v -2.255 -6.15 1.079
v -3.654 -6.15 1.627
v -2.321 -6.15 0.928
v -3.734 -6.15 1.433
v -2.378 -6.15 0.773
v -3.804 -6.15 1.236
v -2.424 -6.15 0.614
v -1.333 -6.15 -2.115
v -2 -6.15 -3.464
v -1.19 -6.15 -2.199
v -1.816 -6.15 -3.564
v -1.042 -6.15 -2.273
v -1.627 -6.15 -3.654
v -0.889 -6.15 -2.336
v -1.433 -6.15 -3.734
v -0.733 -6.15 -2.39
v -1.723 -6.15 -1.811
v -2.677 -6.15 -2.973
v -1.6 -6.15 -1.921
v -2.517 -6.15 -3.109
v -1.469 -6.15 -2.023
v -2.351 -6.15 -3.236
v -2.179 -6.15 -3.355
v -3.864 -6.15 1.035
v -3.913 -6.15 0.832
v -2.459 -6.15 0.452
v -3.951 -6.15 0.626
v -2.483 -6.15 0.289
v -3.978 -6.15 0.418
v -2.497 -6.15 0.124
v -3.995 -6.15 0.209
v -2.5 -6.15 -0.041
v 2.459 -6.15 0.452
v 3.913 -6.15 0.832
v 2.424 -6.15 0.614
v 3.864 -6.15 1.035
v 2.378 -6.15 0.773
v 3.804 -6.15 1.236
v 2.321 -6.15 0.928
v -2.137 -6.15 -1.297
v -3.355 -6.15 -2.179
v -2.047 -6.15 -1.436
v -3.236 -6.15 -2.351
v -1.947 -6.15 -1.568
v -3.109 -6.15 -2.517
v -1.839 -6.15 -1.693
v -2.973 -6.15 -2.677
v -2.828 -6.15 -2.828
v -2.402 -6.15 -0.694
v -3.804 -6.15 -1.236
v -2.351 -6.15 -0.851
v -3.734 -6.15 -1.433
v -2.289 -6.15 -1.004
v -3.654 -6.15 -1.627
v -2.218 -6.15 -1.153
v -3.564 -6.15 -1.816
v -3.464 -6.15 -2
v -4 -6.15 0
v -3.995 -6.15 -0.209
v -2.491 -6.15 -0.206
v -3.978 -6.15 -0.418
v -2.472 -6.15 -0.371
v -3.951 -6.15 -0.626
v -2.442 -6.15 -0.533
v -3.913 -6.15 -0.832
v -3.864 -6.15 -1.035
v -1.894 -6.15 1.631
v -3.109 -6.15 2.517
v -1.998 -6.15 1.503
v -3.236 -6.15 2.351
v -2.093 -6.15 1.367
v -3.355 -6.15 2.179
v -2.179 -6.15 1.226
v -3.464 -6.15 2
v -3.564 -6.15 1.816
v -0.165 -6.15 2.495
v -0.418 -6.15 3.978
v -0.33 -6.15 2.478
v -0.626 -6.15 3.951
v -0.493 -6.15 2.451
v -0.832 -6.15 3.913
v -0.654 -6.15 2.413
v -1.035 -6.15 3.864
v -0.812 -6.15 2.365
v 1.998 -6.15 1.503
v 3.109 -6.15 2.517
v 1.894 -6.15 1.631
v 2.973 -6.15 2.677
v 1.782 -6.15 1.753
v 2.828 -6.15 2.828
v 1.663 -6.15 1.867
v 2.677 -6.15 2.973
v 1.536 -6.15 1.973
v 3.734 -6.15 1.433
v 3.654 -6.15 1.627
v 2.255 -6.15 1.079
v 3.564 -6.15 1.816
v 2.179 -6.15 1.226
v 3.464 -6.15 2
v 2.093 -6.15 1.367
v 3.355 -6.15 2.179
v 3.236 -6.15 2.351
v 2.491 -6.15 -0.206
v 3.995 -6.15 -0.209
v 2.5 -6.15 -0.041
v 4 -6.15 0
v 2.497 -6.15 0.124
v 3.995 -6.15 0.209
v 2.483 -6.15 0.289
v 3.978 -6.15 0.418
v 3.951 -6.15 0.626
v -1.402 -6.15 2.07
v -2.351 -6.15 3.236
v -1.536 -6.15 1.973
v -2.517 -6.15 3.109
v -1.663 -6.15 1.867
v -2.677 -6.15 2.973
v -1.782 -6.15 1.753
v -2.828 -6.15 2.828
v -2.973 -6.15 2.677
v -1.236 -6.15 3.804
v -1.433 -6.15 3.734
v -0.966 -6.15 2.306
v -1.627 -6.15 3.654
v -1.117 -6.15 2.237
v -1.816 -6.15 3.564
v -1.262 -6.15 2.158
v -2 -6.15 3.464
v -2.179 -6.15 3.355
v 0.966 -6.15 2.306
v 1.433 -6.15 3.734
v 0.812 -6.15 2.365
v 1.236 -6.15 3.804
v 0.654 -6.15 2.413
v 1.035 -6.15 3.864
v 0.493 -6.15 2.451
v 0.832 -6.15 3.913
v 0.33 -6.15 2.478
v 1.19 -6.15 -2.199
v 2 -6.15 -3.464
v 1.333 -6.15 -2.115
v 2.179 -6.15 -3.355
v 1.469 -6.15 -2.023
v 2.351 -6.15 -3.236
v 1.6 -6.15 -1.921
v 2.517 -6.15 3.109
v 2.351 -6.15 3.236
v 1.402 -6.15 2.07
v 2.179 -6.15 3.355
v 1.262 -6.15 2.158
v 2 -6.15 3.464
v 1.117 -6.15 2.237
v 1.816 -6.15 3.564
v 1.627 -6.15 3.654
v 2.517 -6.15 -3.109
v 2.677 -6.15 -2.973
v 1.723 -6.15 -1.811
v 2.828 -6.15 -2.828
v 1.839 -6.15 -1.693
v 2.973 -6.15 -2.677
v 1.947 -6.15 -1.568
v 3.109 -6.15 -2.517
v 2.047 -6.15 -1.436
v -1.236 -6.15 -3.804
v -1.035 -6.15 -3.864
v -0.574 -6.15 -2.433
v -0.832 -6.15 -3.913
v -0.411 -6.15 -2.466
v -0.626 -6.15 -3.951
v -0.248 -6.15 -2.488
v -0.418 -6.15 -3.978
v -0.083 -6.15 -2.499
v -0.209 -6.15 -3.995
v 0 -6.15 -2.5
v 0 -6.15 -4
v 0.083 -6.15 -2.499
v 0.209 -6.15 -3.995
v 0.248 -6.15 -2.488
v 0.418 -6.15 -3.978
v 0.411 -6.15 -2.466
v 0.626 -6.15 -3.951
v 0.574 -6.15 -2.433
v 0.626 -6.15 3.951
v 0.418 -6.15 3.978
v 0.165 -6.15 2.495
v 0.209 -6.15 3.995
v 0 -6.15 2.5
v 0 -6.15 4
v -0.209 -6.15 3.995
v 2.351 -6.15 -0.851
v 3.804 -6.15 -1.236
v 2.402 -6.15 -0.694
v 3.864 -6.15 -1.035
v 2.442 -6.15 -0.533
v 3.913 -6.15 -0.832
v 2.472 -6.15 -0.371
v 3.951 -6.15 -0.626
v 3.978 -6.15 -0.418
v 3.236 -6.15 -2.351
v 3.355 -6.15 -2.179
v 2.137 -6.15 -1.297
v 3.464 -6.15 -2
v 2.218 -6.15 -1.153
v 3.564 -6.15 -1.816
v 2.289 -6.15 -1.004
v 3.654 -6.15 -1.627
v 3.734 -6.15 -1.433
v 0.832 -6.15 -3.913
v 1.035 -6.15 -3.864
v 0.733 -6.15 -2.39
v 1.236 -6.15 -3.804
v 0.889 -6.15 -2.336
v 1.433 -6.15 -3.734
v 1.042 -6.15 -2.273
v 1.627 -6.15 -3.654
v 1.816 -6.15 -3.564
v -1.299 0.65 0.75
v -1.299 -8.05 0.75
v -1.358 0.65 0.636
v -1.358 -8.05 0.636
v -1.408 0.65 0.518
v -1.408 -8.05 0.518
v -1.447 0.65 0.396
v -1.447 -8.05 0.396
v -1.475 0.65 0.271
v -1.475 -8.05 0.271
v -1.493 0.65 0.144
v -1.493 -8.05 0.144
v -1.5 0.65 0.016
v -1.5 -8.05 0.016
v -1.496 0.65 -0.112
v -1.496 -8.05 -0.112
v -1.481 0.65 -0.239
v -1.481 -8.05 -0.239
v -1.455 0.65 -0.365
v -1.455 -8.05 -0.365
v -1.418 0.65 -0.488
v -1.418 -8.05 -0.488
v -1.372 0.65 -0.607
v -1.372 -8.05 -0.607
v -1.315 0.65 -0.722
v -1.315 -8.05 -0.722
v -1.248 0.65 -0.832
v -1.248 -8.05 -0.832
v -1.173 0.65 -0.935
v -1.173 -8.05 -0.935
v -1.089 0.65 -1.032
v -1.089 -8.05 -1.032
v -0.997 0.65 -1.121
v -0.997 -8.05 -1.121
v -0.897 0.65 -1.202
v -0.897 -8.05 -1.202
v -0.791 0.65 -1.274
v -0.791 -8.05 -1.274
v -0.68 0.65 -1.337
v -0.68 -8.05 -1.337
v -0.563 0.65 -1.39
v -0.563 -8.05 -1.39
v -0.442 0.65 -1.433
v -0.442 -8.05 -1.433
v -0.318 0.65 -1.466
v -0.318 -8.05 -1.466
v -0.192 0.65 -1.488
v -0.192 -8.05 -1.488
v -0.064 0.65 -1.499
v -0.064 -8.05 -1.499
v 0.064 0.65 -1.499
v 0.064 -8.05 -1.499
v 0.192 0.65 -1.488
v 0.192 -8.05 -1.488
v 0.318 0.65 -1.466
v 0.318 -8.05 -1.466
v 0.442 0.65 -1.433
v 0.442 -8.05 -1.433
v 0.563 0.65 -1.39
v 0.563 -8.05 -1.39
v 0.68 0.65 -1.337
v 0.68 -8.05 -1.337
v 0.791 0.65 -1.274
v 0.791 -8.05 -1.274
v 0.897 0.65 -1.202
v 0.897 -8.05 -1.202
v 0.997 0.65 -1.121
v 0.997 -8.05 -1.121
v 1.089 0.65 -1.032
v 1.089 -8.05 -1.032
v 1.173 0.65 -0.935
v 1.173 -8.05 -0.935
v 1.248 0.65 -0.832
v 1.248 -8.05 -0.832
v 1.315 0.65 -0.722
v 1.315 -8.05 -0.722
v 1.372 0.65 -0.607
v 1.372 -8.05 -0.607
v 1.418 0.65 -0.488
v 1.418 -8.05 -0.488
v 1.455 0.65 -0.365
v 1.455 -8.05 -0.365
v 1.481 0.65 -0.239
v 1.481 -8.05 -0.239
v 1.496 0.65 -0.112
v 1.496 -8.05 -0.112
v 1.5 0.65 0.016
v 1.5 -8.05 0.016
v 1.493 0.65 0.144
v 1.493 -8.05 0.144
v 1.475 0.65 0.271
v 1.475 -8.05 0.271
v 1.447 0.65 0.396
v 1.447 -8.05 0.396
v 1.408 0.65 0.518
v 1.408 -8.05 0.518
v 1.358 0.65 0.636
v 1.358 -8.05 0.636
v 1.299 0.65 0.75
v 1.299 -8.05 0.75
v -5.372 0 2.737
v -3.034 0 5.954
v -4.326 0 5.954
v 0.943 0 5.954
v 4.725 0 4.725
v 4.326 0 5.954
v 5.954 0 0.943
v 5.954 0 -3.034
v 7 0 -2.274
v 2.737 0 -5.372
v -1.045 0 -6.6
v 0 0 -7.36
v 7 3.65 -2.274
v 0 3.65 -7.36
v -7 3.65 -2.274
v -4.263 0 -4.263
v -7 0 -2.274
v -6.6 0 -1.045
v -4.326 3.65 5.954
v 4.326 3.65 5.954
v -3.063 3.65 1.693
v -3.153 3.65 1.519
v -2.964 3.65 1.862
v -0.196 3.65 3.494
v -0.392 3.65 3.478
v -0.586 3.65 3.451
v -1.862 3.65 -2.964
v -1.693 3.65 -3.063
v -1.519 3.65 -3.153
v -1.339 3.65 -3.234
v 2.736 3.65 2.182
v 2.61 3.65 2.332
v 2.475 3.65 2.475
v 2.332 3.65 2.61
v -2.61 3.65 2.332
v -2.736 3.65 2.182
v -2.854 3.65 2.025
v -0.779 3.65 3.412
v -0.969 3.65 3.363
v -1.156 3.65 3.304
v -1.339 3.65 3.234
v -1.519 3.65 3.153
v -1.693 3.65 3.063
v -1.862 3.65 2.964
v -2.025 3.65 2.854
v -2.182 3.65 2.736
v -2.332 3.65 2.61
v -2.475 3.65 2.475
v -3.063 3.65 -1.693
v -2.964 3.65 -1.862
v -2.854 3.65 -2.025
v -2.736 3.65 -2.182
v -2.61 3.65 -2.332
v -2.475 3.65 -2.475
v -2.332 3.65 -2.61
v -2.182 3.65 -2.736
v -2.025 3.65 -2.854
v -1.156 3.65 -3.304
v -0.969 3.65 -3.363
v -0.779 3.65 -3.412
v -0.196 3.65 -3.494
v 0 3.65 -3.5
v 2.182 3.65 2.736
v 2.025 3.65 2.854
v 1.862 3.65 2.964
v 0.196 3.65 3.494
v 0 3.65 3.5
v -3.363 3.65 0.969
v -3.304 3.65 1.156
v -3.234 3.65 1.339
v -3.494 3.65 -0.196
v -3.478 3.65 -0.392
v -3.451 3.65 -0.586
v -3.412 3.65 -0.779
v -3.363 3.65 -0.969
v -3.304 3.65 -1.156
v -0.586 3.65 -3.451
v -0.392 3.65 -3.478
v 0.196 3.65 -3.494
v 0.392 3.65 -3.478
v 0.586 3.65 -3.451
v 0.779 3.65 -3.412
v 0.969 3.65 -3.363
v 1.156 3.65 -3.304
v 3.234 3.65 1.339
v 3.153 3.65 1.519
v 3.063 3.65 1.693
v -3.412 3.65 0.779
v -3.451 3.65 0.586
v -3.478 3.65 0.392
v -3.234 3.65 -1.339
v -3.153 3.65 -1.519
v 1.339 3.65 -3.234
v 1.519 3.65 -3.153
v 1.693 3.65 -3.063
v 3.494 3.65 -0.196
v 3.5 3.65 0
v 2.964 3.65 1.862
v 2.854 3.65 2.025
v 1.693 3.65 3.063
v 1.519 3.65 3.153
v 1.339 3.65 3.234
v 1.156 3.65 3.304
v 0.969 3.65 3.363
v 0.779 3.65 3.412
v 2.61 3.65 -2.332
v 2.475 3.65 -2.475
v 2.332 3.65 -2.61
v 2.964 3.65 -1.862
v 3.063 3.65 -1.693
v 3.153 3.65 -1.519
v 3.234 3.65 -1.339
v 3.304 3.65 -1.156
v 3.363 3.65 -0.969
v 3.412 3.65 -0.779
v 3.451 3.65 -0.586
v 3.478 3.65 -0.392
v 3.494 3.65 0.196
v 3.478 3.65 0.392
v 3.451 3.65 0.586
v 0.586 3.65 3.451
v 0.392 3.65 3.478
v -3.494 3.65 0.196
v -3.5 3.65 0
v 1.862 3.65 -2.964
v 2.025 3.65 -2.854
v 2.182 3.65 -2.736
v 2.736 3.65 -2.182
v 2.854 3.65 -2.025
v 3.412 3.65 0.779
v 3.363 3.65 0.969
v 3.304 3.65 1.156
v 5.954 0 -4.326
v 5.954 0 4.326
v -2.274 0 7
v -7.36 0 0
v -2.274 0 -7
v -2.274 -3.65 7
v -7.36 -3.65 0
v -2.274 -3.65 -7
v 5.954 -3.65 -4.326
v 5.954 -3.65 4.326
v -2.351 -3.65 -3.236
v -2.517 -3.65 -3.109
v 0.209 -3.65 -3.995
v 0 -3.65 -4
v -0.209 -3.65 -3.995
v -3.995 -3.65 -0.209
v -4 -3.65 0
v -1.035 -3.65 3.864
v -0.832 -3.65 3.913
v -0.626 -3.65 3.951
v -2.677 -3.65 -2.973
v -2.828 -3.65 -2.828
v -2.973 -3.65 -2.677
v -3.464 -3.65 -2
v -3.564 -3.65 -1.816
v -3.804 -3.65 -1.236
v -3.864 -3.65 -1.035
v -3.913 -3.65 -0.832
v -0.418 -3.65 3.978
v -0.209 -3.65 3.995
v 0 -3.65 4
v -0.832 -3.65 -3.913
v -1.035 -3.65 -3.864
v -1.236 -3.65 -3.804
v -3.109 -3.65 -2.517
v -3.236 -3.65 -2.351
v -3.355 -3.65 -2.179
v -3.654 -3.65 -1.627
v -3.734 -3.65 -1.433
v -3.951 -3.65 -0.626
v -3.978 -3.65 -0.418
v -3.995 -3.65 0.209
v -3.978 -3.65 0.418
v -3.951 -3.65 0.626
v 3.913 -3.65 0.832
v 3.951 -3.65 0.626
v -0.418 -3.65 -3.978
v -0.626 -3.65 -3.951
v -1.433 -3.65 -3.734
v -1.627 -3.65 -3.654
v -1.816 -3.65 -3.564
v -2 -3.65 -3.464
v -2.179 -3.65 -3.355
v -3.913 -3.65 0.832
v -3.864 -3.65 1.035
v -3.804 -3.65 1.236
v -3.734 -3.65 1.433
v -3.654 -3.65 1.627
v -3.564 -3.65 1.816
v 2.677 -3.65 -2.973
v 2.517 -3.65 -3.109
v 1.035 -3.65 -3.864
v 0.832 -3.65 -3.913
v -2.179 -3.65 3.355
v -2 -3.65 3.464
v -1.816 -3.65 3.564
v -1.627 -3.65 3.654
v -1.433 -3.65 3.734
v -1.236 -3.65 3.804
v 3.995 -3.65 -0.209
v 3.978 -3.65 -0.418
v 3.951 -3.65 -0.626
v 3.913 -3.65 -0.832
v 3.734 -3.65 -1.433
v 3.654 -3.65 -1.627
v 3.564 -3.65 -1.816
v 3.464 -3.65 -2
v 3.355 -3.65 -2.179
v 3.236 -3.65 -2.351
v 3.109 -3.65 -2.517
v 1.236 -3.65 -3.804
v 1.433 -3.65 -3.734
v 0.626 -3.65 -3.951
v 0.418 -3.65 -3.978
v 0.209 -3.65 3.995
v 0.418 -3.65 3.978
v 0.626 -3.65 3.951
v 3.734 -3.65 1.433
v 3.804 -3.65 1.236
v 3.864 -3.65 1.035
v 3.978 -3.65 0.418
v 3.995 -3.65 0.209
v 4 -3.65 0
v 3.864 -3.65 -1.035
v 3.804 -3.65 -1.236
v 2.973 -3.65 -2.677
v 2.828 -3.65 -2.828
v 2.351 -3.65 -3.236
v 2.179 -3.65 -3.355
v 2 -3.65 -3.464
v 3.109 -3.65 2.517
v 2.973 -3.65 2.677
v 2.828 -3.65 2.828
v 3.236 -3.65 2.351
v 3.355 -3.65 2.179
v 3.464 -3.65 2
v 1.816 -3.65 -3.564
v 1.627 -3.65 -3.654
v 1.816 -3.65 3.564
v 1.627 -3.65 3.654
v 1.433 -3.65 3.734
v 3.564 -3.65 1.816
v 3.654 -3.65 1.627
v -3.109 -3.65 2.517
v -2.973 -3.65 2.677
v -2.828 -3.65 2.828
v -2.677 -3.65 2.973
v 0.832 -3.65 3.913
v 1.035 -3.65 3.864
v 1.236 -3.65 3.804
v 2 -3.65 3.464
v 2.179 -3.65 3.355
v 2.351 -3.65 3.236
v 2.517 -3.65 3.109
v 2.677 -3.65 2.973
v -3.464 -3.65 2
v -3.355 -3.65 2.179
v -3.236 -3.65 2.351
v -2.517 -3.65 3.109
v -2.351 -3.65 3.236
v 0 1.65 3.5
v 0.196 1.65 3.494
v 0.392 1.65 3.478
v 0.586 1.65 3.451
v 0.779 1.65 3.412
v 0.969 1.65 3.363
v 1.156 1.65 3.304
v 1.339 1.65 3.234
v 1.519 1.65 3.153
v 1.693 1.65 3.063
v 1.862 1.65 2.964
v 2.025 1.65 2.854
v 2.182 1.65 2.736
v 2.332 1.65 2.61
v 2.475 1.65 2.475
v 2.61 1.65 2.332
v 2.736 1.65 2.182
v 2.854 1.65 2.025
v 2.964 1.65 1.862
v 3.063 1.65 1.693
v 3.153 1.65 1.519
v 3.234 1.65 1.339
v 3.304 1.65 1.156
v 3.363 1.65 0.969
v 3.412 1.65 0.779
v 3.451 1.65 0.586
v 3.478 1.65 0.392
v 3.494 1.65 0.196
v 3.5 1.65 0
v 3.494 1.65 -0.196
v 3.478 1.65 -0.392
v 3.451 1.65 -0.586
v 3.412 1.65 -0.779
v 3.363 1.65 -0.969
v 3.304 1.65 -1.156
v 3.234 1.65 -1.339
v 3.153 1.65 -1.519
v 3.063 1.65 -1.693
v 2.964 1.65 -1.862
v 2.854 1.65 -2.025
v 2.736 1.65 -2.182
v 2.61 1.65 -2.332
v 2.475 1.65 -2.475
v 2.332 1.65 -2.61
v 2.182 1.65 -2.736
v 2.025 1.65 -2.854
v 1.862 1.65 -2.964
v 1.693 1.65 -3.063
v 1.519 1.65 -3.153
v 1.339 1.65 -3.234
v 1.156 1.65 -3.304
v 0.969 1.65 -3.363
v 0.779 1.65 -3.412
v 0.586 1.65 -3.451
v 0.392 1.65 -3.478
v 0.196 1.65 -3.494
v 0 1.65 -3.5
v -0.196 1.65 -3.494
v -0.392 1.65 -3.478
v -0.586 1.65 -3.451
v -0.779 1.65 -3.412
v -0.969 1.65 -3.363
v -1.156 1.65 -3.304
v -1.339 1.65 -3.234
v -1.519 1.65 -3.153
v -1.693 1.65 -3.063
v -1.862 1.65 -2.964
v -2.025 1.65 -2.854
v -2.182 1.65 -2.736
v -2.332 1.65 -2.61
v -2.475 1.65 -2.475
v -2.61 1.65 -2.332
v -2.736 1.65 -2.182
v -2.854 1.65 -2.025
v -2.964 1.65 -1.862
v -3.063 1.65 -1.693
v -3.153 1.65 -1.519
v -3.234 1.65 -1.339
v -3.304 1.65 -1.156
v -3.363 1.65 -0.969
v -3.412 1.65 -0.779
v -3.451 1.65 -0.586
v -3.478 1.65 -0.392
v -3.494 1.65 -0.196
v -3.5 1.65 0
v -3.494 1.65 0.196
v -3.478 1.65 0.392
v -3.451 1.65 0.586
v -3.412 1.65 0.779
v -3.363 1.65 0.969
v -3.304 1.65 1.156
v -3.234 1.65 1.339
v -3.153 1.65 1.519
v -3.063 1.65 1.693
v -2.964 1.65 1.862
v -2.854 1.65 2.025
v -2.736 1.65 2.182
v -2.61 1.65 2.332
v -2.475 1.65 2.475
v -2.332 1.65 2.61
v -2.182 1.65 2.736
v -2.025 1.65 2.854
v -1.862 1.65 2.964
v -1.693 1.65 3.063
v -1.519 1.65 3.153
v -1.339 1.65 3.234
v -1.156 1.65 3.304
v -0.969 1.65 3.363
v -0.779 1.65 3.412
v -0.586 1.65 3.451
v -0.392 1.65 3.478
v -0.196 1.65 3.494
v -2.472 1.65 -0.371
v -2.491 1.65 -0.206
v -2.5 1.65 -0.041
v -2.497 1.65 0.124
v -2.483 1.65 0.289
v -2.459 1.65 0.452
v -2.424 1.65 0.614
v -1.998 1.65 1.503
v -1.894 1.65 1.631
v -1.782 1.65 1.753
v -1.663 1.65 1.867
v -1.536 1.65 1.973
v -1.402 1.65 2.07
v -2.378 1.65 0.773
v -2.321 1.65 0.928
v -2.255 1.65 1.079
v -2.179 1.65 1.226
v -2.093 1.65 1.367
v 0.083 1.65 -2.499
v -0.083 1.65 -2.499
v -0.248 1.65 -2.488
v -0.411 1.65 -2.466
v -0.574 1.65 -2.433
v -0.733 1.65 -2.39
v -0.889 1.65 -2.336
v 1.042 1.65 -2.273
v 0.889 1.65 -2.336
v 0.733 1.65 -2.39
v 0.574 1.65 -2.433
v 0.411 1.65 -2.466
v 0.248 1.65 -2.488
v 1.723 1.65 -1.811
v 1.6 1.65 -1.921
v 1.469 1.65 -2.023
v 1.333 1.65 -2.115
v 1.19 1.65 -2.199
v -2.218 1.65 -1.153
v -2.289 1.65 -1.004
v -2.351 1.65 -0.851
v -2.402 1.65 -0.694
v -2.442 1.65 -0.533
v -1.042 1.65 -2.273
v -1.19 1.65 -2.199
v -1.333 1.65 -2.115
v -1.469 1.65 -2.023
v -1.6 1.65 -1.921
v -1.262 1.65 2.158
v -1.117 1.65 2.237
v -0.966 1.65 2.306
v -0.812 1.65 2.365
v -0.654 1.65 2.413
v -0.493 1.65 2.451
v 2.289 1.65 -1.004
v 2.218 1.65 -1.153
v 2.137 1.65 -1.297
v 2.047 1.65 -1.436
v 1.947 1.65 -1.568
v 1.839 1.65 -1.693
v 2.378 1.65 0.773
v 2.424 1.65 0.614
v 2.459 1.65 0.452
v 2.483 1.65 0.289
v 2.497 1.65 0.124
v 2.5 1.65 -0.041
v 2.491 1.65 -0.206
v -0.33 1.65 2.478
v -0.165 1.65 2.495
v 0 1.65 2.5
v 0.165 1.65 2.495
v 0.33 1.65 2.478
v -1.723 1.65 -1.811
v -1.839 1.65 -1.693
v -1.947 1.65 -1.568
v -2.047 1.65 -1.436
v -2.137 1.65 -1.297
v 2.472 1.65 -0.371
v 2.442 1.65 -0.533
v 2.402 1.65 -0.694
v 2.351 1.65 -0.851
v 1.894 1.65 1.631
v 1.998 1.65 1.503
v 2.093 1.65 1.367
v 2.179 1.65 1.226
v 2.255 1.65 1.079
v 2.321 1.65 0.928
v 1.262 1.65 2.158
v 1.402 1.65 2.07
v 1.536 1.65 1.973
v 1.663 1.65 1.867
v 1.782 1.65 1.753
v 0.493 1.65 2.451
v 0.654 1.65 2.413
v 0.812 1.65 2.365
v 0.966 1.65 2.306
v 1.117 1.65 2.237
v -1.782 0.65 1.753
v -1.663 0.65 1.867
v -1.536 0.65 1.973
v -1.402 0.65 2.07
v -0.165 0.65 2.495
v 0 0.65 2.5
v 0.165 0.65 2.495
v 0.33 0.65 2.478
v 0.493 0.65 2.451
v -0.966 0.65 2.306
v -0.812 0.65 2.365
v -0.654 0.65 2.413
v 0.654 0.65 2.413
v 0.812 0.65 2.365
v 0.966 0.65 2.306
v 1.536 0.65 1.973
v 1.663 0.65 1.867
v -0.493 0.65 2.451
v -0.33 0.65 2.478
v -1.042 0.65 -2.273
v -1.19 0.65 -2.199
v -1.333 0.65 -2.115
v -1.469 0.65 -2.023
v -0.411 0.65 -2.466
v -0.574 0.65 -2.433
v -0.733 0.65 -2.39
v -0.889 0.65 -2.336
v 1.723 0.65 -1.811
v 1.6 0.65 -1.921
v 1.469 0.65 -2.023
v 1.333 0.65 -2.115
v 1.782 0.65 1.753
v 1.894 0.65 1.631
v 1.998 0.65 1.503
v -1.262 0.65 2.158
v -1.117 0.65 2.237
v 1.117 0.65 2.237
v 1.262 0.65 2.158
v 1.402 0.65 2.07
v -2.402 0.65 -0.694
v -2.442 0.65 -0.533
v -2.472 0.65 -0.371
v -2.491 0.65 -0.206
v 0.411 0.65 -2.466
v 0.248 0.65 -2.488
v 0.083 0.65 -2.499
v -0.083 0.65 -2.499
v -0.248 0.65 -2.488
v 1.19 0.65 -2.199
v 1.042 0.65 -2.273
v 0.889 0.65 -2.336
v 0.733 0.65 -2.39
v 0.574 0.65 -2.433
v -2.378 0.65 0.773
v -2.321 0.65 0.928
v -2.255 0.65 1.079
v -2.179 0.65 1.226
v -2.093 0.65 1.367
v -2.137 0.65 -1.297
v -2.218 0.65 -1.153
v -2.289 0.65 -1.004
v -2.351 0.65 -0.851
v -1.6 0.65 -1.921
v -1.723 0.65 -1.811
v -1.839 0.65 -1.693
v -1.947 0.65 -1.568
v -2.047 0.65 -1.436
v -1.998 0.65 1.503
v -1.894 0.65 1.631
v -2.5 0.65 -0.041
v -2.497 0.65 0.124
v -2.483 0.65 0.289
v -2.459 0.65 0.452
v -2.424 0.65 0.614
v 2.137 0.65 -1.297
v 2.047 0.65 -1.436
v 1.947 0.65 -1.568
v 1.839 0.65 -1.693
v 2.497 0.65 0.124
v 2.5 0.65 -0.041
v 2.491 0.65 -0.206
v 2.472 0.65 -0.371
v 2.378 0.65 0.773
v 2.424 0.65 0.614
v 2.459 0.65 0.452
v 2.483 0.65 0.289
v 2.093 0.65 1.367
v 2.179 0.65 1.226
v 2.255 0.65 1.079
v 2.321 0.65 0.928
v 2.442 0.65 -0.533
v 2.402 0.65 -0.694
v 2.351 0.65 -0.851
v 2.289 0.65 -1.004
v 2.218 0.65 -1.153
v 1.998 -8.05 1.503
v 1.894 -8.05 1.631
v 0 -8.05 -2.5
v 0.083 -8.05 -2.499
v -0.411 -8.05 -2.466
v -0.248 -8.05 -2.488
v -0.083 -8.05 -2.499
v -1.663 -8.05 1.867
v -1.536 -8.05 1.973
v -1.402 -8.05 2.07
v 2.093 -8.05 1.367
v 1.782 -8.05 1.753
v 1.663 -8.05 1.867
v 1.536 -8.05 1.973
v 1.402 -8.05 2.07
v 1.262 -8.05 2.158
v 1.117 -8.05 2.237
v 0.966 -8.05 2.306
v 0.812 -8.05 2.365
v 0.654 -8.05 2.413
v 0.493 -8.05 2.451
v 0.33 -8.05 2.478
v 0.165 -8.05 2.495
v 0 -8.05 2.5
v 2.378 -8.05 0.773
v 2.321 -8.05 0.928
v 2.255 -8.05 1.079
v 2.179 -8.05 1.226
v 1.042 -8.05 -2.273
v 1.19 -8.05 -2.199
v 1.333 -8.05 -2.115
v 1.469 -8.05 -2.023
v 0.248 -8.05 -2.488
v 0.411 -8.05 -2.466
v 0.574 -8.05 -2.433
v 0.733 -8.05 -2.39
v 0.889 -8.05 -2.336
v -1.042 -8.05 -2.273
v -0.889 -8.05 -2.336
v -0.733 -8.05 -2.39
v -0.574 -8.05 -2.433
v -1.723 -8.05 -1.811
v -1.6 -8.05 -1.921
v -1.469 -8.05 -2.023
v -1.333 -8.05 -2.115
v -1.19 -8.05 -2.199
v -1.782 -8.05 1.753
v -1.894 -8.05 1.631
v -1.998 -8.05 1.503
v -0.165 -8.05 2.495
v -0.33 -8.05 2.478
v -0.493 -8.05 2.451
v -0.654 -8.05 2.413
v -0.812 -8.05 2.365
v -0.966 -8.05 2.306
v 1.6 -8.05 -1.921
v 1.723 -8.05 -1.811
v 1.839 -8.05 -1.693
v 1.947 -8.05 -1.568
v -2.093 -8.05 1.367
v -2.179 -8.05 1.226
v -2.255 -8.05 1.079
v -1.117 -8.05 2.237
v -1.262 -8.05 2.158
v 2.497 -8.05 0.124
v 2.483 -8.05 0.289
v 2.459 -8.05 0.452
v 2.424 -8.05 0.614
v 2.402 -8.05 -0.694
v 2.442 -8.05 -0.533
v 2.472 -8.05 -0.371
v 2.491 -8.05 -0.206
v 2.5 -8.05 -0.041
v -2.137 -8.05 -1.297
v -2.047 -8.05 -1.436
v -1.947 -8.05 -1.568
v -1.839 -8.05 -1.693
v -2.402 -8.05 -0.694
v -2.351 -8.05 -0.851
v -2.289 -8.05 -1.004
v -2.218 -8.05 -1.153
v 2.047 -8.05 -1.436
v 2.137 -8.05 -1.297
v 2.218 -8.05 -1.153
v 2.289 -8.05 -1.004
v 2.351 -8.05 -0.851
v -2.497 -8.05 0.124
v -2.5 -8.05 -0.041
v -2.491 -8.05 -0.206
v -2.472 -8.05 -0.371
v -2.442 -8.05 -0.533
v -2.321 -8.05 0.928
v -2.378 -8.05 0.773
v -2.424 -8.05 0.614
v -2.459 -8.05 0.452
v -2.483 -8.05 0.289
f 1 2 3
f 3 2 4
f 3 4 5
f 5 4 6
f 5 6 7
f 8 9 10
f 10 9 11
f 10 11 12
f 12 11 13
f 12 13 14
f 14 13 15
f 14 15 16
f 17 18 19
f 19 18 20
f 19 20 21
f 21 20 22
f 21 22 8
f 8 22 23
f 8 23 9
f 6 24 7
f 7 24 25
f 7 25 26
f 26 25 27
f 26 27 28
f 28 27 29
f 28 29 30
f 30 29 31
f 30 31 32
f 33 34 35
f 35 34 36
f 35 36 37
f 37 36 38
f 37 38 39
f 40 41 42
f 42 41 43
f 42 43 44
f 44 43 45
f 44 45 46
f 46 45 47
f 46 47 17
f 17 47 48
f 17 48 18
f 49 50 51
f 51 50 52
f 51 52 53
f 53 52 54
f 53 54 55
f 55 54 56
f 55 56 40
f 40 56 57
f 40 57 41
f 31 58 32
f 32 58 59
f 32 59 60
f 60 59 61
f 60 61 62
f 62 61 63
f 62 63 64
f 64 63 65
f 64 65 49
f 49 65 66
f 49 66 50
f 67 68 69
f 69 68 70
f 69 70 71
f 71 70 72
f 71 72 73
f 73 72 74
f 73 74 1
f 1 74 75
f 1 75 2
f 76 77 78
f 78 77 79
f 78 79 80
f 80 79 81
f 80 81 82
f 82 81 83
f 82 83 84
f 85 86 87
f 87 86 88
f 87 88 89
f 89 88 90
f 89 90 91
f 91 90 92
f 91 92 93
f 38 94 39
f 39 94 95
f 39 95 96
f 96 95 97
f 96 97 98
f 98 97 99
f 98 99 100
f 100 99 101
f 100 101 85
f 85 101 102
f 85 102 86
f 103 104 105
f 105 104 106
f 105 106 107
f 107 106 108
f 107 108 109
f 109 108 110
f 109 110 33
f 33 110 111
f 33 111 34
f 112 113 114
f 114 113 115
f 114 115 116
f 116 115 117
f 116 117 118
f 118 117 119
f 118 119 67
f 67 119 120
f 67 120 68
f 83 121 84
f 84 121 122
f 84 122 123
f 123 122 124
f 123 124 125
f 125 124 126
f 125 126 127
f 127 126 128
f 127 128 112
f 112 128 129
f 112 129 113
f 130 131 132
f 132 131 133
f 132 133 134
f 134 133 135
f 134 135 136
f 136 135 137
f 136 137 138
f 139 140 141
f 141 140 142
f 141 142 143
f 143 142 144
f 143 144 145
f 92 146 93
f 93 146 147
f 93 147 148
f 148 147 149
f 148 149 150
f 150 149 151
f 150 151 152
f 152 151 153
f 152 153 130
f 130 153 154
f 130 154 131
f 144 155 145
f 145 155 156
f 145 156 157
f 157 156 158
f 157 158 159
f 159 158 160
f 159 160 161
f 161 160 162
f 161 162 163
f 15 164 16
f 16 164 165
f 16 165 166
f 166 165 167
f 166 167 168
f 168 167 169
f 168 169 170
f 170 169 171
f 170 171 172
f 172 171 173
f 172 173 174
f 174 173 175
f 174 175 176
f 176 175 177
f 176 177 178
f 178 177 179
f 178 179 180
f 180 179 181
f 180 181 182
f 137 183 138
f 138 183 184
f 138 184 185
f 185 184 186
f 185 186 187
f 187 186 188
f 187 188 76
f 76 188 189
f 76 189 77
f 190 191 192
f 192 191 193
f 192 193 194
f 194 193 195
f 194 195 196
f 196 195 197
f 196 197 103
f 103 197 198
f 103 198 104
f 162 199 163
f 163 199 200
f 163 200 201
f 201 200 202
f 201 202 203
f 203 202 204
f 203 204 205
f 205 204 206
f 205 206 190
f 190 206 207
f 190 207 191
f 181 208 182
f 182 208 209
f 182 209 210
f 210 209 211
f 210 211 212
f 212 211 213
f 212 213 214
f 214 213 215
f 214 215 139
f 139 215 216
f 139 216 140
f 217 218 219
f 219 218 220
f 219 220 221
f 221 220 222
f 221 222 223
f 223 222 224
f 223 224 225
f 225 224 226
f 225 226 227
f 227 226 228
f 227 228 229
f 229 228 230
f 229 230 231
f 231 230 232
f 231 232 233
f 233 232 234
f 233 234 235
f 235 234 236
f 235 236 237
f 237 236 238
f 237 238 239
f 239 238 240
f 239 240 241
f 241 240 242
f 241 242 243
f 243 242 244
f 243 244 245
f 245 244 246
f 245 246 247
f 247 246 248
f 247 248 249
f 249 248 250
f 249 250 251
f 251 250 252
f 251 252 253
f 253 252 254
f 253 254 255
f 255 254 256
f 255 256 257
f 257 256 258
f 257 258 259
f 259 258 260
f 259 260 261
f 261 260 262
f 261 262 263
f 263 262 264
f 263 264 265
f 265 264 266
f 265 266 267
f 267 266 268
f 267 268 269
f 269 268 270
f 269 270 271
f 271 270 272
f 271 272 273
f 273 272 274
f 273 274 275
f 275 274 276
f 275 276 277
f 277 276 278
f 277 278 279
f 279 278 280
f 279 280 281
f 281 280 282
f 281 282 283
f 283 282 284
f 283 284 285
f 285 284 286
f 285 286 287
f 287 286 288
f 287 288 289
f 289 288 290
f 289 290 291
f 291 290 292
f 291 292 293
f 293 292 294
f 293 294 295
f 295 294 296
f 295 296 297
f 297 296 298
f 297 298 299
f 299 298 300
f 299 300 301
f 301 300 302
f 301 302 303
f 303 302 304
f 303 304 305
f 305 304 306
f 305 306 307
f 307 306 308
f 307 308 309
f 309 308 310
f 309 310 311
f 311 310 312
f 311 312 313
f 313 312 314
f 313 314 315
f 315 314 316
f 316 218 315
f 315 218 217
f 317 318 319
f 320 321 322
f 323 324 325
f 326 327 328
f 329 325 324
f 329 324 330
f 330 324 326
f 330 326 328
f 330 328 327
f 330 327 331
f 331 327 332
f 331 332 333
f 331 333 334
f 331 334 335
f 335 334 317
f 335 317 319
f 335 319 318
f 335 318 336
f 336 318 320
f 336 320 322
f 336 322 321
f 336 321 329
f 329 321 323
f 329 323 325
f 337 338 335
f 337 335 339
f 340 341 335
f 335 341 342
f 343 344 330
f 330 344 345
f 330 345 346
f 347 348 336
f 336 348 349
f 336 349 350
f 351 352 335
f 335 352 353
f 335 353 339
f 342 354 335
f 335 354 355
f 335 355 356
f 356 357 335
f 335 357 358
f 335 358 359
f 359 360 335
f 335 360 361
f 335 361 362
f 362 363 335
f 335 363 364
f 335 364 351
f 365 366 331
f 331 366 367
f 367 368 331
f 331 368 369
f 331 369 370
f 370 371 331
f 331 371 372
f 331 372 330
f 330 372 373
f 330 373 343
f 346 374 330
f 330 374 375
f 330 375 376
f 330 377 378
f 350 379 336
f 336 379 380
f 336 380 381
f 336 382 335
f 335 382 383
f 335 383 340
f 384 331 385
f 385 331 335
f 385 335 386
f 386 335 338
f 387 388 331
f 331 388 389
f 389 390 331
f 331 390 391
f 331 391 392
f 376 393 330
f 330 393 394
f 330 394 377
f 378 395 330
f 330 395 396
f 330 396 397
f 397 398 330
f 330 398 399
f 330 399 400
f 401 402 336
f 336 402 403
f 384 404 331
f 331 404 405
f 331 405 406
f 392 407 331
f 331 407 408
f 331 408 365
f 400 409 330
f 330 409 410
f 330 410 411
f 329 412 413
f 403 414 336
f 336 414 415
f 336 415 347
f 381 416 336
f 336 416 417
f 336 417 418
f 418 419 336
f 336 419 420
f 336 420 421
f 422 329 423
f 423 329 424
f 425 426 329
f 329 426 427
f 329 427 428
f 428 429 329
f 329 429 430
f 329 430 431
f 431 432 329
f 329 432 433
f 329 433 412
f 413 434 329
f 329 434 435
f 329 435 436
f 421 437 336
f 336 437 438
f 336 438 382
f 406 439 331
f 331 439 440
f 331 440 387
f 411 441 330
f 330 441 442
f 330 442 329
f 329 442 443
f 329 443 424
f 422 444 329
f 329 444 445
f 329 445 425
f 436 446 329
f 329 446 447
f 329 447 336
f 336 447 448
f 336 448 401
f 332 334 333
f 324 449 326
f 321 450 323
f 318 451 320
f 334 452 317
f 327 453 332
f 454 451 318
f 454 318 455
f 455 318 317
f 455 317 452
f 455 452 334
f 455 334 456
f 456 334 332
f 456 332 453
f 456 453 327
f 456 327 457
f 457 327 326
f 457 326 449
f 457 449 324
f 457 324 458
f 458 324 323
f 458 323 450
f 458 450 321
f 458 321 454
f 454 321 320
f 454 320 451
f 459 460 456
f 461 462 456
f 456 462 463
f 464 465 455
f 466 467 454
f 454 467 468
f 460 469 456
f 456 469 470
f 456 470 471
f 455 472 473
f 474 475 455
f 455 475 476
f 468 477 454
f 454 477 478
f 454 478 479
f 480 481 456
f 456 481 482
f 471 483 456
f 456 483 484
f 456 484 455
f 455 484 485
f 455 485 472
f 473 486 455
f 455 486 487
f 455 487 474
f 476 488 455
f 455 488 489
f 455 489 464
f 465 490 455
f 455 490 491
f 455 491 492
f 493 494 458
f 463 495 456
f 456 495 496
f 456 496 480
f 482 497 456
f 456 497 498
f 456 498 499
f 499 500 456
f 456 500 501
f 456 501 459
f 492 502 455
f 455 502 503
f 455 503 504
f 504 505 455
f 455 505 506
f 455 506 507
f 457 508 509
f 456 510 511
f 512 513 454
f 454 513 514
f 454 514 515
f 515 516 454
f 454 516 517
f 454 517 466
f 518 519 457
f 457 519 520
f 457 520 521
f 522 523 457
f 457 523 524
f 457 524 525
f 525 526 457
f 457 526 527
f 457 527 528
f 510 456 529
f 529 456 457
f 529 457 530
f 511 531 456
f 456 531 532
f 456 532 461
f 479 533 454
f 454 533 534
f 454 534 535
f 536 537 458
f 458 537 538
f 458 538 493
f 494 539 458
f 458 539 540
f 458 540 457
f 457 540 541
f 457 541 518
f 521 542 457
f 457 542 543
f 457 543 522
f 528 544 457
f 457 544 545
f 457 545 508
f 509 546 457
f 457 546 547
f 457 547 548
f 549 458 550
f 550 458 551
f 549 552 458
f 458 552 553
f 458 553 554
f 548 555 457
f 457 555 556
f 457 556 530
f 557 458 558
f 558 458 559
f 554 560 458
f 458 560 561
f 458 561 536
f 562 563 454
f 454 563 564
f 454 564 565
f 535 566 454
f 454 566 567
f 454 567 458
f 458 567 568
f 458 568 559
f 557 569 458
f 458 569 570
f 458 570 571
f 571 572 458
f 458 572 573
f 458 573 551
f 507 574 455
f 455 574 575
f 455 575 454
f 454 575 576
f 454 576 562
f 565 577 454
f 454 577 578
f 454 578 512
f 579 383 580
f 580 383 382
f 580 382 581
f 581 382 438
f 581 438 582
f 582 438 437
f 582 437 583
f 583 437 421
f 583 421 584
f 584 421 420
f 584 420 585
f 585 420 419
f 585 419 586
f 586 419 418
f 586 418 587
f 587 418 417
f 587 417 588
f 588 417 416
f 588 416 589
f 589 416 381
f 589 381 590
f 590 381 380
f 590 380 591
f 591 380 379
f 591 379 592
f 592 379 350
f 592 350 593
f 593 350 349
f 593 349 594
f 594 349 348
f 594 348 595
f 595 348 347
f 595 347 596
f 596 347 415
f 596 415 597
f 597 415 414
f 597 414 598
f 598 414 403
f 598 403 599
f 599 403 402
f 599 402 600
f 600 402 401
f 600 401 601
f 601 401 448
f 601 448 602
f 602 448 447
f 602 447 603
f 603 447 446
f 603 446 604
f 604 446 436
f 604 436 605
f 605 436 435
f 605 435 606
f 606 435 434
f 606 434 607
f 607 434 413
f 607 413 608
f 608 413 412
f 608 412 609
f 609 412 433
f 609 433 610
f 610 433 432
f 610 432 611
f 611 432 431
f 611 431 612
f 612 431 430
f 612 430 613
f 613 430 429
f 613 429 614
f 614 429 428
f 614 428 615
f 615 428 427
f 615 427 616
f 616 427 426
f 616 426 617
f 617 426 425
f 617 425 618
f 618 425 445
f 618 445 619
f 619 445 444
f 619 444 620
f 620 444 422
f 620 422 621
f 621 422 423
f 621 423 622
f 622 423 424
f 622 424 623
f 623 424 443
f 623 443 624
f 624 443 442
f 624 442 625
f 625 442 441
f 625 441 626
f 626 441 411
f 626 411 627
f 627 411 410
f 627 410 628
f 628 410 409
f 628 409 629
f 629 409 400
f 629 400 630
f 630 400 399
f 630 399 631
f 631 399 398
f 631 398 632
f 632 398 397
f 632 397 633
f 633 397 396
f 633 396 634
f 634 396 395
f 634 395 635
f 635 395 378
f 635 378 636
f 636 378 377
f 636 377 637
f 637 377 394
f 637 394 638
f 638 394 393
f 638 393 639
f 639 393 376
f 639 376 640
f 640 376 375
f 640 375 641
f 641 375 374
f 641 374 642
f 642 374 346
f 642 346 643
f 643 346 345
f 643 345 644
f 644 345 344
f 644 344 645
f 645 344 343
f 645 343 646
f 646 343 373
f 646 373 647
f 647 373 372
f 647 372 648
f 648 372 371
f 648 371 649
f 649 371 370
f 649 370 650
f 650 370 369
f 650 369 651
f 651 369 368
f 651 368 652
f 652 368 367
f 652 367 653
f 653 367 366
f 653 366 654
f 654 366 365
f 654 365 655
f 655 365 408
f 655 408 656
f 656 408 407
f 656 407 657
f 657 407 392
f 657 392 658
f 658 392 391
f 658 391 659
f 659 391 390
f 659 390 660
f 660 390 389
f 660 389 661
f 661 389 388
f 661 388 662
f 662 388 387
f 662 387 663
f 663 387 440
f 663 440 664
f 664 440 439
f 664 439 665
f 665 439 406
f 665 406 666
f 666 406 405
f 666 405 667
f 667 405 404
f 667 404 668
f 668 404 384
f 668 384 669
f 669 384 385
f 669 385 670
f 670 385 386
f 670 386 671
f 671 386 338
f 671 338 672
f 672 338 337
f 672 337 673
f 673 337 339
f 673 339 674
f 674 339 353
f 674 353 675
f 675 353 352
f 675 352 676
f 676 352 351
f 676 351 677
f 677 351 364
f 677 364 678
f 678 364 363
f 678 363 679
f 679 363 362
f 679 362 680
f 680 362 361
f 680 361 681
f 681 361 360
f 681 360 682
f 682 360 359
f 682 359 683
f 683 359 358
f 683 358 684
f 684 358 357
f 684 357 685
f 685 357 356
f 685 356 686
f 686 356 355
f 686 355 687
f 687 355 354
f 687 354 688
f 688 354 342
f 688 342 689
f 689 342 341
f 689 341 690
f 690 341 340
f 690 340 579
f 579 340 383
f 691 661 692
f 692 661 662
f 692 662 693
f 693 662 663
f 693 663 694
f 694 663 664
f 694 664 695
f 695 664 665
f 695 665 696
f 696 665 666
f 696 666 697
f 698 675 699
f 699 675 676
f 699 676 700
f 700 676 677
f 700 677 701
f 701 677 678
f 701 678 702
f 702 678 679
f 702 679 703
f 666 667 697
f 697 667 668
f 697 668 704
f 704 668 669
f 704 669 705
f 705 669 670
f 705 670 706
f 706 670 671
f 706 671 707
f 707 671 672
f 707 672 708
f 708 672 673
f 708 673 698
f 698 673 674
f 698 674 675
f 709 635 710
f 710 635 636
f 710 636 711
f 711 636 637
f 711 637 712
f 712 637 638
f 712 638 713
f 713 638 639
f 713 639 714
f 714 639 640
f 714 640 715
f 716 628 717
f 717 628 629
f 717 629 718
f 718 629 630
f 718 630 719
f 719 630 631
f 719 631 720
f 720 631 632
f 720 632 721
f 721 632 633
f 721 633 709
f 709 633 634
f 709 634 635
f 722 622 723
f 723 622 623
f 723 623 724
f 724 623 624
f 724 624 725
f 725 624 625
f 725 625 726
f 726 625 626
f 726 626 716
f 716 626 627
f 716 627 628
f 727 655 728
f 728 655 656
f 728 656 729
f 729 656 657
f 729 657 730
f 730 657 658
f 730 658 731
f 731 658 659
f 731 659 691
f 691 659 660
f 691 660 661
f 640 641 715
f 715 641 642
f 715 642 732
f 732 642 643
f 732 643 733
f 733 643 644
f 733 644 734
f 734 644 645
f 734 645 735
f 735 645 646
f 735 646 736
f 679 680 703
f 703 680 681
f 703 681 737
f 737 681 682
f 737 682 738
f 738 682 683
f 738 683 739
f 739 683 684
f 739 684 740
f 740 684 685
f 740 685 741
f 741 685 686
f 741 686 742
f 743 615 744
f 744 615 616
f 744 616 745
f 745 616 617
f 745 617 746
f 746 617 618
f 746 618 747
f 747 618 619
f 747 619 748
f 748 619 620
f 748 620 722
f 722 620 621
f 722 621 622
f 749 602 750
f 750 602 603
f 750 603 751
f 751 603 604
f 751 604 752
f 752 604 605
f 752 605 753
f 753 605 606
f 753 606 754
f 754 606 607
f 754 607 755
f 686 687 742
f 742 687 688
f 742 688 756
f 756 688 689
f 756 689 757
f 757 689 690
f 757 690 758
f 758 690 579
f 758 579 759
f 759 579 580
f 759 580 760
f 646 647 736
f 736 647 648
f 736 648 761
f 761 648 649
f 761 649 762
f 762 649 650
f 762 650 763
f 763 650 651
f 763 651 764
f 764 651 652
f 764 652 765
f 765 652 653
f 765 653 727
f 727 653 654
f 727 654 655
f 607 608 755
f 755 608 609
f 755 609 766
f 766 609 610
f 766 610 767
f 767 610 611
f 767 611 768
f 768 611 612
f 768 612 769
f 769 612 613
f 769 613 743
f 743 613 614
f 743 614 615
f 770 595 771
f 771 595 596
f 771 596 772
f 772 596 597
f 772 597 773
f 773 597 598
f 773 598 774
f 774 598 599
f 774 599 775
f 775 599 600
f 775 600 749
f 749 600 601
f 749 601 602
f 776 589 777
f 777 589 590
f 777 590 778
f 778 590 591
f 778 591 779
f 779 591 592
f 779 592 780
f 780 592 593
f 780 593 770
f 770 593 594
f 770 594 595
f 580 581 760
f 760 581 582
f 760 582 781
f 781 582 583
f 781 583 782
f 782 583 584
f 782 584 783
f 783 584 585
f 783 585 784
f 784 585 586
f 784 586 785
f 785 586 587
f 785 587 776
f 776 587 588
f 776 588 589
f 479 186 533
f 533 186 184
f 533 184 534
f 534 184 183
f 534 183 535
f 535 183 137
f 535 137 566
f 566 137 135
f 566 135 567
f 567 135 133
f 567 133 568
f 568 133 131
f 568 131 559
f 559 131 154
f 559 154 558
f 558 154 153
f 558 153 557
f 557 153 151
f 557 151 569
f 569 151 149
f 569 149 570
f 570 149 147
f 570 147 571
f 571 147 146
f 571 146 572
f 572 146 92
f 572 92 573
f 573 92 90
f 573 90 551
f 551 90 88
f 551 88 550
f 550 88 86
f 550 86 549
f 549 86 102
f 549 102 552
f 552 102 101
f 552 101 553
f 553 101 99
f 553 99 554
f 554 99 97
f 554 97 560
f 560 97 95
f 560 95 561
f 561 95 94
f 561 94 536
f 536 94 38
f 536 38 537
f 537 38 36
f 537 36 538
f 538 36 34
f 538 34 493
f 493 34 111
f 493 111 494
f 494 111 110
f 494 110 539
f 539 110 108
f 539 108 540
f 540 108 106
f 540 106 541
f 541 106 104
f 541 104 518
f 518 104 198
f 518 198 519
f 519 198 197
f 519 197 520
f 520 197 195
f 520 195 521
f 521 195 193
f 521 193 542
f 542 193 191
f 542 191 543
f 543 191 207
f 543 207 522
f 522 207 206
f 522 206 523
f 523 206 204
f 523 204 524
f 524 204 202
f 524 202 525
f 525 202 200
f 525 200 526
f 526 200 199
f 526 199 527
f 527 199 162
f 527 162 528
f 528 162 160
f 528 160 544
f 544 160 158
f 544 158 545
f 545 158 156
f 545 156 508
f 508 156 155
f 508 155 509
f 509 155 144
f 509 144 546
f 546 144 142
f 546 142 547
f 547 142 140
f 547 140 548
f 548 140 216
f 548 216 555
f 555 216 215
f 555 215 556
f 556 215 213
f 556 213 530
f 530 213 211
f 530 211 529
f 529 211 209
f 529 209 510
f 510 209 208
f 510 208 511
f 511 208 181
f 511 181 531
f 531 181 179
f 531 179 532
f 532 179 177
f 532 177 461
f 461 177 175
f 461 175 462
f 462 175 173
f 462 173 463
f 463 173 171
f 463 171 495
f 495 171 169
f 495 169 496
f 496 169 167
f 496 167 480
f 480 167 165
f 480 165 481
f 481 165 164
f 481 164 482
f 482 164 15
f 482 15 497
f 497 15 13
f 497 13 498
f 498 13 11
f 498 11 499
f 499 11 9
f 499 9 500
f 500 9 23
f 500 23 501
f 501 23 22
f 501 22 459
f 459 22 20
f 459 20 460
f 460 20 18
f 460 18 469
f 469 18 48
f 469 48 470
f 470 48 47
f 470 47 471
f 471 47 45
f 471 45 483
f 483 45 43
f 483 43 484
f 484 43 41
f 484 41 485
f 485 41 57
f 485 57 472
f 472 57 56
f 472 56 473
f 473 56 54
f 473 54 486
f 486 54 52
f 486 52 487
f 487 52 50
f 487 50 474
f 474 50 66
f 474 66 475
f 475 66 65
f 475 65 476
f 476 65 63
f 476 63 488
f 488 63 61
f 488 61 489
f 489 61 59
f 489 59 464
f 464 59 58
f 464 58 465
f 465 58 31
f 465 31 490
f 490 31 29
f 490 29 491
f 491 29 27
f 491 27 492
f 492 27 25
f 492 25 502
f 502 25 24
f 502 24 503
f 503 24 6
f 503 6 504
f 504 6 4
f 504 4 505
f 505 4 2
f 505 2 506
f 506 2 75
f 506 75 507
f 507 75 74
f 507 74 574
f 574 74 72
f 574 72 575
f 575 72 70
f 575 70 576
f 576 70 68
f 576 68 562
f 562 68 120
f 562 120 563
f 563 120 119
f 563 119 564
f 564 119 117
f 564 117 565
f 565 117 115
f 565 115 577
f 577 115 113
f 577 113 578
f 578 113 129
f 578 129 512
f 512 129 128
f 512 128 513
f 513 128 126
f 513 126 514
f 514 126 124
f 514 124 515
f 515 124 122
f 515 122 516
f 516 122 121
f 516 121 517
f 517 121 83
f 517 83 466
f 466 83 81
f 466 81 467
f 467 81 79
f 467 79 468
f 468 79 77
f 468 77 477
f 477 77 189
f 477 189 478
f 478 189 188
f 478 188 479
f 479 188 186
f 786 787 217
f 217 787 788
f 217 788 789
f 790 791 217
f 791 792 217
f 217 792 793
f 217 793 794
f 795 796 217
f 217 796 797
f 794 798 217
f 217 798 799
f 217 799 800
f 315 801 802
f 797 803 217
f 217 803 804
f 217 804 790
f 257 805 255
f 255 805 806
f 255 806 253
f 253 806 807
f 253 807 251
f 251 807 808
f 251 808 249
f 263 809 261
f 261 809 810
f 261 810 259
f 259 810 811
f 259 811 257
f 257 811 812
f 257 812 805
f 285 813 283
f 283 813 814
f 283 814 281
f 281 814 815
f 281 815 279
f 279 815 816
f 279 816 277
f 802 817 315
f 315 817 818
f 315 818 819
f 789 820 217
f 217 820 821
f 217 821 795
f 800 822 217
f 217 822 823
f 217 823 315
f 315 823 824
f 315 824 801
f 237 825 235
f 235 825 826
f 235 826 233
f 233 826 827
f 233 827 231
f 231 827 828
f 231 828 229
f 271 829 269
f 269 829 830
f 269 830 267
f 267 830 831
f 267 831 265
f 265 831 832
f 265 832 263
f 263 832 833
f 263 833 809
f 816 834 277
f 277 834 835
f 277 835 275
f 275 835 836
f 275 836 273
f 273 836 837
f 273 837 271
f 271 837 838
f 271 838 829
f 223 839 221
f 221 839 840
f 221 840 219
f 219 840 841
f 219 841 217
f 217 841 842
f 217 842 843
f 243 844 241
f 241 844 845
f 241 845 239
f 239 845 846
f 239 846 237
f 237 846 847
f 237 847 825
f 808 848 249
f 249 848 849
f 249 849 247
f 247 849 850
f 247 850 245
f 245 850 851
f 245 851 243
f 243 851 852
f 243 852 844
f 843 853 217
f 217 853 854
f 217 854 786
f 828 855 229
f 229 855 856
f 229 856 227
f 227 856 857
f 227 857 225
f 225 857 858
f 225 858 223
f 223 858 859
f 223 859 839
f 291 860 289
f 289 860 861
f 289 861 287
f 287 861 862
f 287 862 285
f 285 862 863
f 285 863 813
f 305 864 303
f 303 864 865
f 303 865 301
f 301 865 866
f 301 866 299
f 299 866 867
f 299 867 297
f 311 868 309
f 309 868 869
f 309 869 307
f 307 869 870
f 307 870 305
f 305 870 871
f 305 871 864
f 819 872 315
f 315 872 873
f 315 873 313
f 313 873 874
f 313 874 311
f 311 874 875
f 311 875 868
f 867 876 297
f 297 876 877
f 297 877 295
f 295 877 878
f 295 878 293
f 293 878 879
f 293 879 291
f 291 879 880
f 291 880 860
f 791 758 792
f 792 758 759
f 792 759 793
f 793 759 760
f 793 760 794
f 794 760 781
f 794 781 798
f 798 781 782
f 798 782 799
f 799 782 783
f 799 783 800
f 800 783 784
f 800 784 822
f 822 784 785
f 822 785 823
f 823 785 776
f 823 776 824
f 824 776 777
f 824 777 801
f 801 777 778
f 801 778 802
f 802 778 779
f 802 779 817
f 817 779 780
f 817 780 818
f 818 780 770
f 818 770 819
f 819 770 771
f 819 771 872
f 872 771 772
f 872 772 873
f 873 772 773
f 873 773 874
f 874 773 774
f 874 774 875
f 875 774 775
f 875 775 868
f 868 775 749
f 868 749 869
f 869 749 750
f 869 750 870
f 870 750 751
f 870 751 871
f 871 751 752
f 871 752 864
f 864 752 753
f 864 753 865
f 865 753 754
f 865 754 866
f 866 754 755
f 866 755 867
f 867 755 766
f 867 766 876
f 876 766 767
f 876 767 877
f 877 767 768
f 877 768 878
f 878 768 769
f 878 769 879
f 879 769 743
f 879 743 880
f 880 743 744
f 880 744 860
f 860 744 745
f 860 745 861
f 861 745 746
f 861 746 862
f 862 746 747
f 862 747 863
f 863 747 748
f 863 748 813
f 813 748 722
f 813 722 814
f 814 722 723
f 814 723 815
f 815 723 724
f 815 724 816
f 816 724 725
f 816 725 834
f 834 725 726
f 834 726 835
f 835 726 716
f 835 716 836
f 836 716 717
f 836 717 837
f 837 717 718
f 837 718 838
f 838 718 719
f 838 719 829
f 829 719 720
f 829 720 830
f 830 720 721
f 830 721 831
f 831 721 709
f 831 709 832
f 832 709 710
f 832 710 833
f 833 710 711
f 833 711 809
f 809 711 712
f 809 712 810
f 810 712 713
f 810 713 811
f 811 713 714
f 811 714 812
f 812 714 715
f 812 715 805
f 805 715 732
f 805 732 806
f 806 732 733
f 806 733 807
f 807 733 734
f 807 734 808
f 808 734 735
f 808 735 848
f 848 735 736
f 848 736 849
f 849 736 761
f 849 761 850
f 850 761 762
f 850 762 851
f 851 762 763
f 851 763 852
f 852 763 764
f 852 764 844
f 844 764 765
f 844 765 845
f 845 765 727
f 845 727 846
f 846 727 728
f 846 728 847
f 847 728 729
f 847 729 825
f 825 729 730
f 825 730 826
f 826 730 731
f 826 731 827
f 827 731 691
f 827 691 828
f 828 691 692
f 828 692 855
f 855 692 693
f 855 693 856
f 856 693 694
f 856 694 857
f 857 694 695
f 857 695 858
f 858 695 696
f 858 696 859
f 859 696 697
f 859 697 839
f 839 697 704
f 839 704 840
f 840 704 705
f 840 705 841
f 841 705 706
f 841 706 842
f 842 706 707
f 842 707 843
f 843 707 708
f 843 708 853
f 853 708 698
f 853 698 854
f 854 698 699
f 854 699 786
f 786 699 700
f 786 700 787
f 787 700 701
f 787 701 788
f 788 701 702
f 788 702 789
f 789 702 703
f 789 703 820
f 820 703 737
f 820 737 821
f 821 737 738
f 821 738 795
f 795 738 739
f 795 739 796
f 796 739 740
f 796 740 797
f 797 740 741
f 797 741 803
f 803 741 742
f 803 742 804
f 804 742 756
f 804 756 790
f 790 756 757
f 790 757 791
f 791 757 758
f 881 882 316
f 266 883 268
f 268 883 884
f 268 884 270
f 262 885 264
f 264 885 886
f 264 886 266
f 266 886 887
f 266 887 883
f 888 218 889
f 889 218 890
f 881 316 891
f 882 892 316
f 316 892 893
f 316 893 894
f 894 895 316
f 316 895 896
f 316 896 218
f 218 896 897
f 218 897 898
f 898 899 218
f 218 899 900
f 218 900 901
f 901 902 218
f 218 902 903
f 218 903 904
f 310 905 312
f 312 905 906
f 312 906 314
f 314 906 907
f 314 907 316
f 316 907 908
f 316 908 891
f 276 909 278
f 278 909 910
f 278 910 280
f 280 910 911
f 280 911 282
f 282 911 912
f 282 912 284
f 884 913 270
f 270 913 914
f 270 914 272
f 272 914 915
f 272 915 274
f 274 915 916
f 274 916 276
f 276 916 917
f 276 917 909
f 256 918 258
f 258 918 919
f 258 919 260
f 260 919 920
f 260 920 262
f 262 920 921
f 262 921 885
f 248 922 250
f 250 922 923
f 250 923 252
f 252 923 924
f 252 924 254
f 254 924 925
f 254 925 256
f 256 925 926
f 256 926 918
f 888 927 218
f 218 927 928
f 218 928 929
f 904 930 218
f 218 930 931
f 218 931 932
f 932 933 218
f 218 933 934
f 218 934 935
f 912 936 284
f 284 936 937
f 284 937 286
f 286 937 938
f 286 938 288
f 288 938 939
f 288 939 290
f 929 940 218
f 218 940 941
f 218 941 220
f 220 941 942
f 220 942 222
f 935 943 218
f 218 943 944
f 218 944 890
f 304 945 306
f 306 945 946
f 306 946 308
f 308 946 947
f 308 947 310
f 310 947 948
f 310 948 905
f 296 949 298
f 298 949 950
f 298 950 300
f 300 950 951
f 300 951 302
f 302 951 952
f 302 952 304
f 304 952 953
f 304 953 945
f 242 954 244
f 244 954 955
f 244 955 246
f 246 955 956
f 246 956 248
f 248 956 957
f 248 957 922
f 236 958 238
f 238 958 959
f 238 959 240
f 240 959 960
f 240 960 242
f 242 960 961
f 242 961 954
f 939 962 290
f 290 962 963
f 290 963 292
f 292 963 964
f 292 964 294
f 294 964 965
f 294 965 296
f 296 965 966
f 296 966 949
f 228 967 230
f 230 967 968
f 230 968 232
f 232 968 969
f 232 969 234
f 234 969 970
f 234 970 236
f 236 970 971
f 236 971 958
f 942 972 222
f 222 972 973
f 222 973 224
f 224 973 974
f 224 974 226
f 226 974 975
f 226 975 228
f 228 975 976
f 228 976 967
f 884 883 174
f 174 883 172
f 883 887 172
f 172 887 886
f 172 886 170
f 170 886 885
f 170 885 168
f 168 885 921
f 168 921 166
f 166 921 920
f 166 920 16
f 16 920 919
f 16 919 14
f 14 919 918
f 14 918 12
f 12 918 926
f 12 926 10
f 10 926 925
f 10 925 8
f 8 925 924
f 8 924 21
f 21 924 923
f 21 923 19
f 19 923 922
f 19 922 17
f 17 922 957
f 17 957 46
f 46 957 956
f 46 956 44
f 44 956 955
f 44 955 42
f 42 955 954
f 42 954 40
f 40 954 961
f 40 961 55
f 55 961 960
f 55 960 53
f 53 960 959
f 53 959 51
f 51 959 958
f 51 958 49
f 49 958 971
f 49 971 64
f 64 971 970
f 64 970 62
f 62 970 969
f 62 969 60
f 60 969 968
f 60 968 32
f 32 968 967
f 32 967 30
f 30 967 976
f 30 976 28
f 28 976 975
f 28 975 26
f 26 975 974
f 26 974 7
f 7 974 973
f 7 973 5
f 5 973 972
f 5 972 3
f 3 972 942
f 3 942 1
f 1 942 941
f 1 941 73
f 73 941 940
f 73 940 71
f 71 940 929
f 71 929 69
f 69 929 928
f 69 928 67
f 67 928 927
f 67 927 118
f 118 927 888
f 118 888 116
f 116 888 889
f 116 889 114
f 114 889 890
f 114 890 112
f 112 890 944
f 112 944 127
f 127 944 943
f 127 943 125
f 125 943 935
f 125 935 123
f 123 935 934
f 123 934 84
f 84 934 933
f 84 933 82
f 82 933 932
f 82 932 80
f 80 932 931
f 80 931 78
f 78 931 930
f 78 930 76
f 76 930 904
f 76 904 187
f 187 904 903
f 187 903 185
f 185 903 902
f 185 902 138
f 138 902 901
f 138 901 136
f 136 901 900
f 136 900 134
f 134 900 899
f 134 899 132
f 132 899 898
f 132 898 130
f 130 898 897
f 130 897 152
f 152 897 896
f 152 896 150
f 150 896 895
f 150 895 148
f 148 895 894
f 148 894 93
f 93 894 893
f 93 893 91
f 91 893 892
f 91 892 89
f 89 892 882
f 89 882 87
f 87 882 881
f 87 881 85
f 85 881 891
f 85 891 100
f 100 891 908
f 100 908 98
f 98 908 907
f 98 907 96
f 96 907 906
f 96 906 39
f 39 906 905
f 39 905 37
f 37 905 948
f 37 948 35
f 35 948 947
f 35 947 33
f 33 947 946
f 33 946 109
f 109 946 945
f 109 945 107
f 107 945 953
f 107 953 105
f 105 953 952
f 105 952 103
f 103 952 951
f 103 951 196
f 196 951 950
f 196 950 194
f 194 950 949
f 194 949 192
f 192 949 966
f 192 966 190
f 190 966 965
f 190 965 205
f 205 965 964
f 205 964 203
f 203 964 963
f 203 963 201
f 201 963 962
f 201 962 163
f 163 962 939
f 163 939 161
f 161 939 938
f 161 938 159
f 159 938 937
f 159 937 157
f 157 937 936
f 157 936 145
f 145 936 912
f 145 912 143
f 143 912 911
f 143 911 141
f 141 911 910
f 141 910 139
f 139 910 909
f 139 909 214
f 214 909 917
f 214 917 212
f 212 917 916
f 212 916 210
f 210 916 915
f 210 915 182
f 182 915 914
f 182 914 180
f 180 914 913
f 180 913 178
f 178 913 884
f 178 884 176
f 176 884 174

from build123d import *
from build123d.topology import SkipClean

# Parameters (mm, degrees)
EXTRUDE_1_DEPTH     = 3.65
EXTRUDE_2_DEPTH     = 3.65
SKETCH_3_R          = 3.5
CUT_EXTRUDE_1_DEPTH = 2
SKETCH_4_R          = 4
EXTRUDE_3_DEPTH     = 2.5
CUT_EXTRUDE_2_DEPTH = 15.296125349
SKETCH_7_R          = 2.5
CUT_EXTRUDE_3_DEPTH = 1
SKETCH_8_R          = 2.5
EXTRUDE_4_DEPTH     = 1.9


with BuildPart() as part:
    # 草图1 → 凸台-拉伸1 (new body)
    with BuildSketch(Plane(origin=(0, 0, 0), x_dir=(1, 0, 0), z_dir=(0, 1, 0))):
        Polygon((0, 7.36), (-6.99977596, 2.274365079), (-4.326099457, -5.954365079), (4.326099457, -5.954365079), (6.99977596, 2.274365079), align=None)
    extrude(amount=EXTRUDE_1_DEPTH)

    # 草图2 → 凸台-拉伸2 (add)
    with BuildSketch(Plane(origin=(0, 0, 0), x_dir=(1, 0, 0), z_dir=(0, 1, 0))):
        Polygon((-2.274365079, -6.99977596), (5.954365079, -4.326099457), (5.954365079, 4.326099457), (-2.274365079, 6.99977596), (-7.36, 0), align=None)
    extrude(amount=-EXTRUDE_2_DEPTH)

    # 草图3 → 切除-拉伸1 (cut)
    with BuildSketch(Plane(origin=(0, 3.65, 0), x_dir=(1, 0, 0), z_dir=(0, 1, 0))):
        with Locations(Location((0, 0, 0), (0, 0, 270))):
            Circle(SKETCH_3_R)
    extrude(amount=-CUT_EXTRUDE_1_DEPTH, mode=Mode.SUBTRACT)

    # 草图4 → 凸台-拉伸3 (add)
    with BuildSketch(Plane.XZ.offset(3.65)):
        with Locations(Location((0, 0, 0), (0, 0, 270))):
            Circle(SKETCH_4_R)
    extrude(amount=EXTRUDE_3_DEPTH)

    # 草图6 → 切除-拉伸2 (cut, through all)
    with BuildSketch(Plane.XZ.offset(6.15)):
        with BuildLine():
            Line((-1.299038106, 0.75), (1.299038106, 0.75))
            ThreePointArc((1.299038106, 0.75), (0, -1.5), (-1.299038106, 0.75))
        make_face()
    extrude(amount=-CUT_EXTRUDE_2_DEPTH, mode=Mode.SUBTRACT)

    # 草图7 → 切除-拉伸3 (cut)
    with BuildSketch(Plane(origin=(0, 1.65, 0), x_dir=(1, 0, 0), z_dir=(0, 1, 0))):
        with Locations(Location((0, 0, 0), (0, 0, 270))):
            Circle(SKETCH_7_R)
    extrude(amount=-CUT_EXTRUDE_3_DEPTH, mode=Mode.SUBTRACT)

    # 草图8 → 凸台-拉伸4 (add)
    with SkipClean():  # the faces are left unmerged after this step: merging them gives an invalid solid
        with BuildSketch(Plane.XZ.offset(6.15)):
            with Locations(Location((0, 0, 0), (0, 0, 90))):
                Circle(SKETCH_8_R)
            with BuildLine():
                Line((1.299038106, 0.75), (-1.299038106, 0.75))
                ThreePointArc((-1.299038106, 0.75), (0, -1.5), (1.299038106, 0.75))
            make_face(mode=Mode.SUBTRACT)
        extrude(amount=EXTRUDE_4_DEPTH)


solid = part.part
